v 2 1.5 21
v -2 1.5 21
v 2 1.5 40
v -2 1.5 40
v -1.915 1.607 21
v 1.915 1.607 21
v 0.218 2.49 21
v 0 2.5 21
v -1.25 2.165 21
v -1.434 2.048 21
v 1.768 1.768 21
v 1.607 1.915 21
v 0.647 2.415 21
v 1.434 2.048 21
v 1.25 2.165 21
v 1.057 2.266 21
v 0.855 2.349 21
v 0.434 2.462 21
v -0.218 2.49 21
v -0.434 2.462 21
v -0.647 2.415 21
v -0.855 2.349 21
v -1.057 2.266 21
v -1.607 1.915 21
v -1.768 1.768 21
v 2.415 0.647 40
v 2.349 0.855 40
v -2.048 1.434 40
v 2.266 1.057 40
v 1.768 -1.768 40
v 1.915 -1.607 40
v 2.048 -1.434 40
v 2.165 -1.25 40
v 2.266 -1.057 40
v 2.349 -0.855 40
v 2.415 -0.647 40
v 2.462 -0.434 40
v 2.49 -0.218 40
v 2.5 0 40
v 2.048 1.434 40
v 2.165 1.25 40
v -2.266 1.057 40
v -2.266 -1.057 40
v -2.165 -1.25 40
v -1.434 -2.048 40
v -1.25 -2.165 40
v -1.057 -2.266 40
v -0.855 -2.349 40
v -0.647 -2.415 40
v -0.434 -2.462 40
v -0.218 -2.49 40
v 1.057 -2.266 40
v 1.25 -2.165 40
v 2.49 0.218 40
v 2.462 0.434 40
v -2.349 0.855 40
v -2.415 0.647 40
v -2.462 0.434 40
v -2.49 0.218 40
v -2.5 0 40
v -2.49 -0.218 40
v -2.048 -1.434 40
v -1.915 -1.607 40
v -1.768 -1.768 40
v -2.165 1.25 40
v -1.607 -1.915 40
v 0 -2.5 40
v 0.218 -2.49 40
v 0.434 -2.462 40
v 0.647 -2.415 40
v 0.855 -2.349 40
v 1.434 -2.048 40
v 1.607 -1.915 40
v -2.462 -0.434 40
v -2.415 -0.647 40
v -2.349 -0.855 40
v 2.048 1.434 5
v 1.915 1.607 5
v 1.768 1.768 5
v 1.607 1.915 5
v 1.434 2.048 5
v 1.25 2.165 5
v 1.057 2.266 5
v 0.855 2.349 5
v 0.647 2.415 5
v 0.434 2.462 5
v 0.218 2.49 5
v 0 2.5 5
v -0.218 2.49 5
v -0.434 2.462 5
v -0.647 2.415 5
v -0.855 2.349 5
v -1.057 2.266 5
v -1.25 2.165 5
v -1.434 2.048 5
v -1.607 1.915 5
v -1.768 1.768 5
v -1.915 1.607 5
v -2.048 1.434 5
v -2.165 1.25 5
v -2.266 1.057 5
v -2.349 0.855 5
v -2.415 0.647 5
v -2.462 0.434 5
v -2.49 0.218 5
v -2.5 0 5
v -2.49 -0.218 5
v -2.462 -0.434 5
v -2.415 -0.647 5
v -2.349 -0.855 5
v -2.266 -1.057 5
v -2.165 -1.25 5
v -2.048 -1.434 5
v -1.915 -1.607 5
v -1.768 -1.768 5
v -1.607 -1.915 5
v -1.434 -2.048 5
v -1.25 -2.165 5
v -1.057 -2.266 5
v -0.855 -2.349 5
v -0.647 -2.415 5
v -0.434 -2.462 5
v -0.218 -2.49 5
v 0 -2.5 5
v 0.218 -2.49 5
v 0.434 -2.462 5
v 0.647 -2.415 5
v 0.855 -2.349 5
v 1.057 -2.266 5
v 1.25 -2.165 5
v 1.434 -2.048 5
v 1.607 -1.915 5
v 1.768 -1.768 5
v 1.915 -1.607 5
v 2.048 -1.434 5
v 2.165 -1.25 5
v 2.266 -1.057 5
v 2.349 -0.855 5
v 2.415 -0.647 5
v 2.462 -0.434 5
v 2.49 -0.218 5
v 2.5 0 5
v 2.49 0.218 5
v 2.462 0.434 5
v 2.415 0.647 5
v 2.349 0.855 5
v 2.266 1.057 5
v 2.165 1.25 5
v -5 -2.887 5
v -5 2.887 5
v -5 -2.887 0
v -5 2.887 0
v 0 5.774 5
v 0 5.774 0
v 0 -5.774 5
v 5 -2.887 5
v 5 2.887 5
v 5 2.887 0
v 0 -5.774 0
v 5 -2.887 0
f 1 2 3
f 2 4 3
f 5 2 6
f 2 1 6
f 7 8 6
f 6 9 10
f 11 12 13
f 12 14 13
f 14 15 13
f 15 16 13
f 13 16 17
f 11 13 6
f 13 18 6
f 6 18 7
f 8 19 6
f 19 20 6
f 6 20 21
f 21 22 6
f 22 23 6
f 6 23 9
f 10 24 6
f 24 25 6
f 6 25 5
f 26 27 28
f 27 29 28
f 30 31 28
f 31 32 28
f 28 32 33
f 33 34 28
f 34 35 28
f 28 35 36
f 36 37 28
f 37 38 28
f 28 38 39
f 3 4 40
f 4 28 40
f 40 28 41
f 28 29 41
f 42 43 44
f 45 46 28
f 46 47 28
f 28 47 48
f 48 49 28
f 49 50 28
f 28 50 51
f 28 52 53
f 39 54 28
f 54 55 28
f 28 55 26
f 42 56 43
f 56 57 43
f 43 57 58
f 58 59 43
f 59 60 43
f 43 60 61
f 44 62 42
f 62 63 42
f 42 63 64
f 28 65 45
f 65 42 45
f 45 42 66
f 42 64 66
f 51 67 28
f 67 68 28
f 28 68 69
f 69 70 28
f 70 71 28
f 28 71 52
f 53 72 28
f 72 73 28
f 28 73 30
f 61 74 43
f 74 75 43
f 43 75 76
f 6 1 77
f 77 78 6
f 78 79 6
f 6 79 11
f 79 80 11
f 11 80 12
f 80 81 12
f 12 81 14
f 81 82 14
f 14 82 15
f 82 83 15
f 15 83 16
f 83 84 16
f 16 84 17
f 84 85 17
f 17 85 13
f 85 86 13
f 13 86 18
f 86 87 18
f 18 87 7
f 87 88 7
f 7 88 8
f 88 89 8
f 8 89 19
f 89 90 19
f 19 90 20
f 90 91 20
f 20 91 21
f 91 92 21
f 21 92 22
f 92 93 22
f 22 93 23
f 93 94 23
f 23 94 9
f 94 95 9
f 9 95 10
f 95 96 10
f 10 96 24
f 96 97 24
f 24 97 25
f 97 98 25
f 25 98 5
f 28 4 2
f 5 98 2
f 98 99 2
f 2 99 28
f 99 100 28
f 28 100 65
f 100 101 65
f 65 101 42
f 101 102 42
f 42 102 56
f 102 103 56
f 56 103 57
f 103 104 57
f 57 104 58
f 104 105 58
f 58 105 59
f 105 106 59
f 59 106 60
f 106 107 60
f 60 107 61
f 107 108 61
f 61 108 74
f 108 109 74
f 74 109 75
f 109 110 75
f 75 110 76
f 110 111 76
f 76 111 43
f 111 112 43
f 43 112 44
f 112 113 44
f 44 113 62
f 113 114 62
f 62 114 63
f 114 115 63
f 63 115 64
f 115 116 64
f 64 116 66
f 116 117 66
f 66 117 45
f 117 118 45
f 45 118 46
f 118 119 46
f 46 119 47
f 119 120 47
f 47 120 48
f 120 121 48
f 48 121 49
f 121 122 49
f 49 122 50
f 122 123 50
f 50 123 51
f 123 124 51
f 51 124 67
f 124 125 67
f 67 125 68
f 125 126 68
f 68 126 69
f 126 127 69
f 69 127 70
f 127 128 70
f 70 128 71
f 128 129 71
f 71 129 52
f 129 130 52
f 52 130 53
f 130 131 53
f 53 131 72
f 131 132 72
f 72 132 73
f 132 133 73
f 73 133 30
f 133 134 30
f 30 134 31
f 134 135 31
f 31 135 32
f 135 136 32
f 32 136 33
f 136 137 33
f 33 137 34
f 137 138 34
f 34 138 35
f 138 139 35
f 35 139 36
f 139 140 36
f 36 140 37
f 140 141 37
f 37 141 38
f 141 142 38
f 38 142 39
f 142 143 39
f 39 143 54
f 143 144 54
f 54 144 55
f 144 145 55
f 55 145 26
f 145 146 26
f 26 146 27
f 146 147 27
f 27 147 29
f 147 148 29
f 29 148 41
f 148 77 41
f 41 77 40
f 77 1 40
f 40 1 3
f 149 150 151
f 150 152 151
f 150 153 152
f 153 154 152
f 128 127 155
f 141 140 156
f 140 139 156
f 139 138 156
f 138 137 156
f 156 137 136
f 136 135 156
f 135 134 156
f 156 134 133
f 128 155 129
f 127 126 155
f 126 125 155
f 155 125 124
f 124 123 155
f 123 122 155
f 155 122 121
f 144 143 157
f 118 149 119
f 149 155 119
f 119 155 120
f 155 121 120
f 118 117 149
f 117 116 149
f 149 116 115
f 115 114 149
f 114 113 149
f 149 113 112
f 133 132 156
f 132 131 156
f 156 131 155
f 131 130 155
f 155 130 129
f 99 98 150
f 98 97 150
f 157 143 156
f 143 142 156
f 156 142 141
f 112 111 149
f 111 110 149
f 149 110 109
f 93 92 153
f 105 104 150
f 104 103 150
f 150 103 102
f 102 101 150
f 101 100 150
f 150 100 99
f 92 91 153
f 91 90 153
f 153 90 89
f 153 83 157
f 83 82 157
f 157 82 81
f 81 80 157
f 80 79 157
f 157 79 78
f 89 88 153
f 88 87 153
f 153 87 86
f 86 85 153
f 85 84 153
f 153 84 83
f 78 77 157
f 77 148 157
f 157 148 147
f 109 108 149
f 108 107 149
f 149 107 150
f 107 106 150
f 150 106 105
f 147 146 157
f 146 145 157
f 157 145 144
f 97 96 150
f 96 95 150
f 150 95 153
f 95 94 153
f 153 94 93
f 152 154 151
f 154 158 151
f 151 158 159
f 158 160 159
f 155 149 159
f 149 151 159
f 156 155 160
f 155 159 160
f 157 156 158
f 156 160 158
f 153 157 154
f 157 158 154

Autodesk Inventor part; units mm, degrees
ref_plane "YZ Plane" through (0, 0, 0) normal (1, 0, 0) x (0, 1, 0)
ref_plane "XZ Plane" through (0, 0, 0) normal (0, 1, 0) x (-1, 0, 0)
ref_plane "XY Plane" through (0, 0, 0) normal (0, 0, 1) x (1, 0, 0)
sketch "Sketch1" plane through (0, 0, 0) normal (0, 0, 1) x (1, 0, 0)
  line L0 (5, 2.8868) -> (5, -2.8868)
  line L1 (5, 2.8868) -> (0, 5.7735)
  line L2 (-5, 2.8868) -> (0, 5.7735)
  line L3 (0, -5.7735) -> (5, -2.8868)
  line L4 (-5, 2.8868) -> (-5, -2.8868)
  line L5 (-5, -2.8868) -> (0, -5.7735)
  point P0 (0, 0)
  point P1 (0, 0)
  point P2 (0, 0)
  point P3 (0, 0)
  point P4 (0, 0)
  point P5 (0, 0)
  dimension "d0" = 120
  dimension "d1" = 120
  dimension "d2" = 120
  dimension "d3" = 120
  dimension "d4" = 120
  dimension "d5" = 120
  dimension "d6" = 10
  dimension "d7" = 5
extrude "Extrusion1" add sketch "Sketch1" along normal blind 5
sketch "Sketch2" plane through (0, 0, 5) normal (0, 0, 1) x (1, 0, 0)
  circle A0 centre (0, 0) radius 2.5
  dimension "d10" = 5
extrude "Extrusion2" add sketch "Sketch2" along normal blind 35
thread "Thread1" size "M5x0.8" class "6g" standard "ANSI Metric M Profile" full length
sketch "Sketch3" plane through (0, 0, 40) normal (0, 0, 1) x (1, 0, 0)
  line L0 (0, 0) -> (0, 1.5)
  line L1 (0, 1.5) -> (2, 1.5)
  line L2 (2, 1.5) -> (-2, 1.5)
  circle A0 centre (0, 0) radius 2.5 projected
  circle A1 centre (0, 0) radius 2.5
  dimension "d15" = 1.5
extrude "Extrusion3" cut sketch "Sketch3" against normal blind 19 contours L2 A0 L1 picked at (-1.2006, 1.6398)
properties part number "m5-screw-cut"
